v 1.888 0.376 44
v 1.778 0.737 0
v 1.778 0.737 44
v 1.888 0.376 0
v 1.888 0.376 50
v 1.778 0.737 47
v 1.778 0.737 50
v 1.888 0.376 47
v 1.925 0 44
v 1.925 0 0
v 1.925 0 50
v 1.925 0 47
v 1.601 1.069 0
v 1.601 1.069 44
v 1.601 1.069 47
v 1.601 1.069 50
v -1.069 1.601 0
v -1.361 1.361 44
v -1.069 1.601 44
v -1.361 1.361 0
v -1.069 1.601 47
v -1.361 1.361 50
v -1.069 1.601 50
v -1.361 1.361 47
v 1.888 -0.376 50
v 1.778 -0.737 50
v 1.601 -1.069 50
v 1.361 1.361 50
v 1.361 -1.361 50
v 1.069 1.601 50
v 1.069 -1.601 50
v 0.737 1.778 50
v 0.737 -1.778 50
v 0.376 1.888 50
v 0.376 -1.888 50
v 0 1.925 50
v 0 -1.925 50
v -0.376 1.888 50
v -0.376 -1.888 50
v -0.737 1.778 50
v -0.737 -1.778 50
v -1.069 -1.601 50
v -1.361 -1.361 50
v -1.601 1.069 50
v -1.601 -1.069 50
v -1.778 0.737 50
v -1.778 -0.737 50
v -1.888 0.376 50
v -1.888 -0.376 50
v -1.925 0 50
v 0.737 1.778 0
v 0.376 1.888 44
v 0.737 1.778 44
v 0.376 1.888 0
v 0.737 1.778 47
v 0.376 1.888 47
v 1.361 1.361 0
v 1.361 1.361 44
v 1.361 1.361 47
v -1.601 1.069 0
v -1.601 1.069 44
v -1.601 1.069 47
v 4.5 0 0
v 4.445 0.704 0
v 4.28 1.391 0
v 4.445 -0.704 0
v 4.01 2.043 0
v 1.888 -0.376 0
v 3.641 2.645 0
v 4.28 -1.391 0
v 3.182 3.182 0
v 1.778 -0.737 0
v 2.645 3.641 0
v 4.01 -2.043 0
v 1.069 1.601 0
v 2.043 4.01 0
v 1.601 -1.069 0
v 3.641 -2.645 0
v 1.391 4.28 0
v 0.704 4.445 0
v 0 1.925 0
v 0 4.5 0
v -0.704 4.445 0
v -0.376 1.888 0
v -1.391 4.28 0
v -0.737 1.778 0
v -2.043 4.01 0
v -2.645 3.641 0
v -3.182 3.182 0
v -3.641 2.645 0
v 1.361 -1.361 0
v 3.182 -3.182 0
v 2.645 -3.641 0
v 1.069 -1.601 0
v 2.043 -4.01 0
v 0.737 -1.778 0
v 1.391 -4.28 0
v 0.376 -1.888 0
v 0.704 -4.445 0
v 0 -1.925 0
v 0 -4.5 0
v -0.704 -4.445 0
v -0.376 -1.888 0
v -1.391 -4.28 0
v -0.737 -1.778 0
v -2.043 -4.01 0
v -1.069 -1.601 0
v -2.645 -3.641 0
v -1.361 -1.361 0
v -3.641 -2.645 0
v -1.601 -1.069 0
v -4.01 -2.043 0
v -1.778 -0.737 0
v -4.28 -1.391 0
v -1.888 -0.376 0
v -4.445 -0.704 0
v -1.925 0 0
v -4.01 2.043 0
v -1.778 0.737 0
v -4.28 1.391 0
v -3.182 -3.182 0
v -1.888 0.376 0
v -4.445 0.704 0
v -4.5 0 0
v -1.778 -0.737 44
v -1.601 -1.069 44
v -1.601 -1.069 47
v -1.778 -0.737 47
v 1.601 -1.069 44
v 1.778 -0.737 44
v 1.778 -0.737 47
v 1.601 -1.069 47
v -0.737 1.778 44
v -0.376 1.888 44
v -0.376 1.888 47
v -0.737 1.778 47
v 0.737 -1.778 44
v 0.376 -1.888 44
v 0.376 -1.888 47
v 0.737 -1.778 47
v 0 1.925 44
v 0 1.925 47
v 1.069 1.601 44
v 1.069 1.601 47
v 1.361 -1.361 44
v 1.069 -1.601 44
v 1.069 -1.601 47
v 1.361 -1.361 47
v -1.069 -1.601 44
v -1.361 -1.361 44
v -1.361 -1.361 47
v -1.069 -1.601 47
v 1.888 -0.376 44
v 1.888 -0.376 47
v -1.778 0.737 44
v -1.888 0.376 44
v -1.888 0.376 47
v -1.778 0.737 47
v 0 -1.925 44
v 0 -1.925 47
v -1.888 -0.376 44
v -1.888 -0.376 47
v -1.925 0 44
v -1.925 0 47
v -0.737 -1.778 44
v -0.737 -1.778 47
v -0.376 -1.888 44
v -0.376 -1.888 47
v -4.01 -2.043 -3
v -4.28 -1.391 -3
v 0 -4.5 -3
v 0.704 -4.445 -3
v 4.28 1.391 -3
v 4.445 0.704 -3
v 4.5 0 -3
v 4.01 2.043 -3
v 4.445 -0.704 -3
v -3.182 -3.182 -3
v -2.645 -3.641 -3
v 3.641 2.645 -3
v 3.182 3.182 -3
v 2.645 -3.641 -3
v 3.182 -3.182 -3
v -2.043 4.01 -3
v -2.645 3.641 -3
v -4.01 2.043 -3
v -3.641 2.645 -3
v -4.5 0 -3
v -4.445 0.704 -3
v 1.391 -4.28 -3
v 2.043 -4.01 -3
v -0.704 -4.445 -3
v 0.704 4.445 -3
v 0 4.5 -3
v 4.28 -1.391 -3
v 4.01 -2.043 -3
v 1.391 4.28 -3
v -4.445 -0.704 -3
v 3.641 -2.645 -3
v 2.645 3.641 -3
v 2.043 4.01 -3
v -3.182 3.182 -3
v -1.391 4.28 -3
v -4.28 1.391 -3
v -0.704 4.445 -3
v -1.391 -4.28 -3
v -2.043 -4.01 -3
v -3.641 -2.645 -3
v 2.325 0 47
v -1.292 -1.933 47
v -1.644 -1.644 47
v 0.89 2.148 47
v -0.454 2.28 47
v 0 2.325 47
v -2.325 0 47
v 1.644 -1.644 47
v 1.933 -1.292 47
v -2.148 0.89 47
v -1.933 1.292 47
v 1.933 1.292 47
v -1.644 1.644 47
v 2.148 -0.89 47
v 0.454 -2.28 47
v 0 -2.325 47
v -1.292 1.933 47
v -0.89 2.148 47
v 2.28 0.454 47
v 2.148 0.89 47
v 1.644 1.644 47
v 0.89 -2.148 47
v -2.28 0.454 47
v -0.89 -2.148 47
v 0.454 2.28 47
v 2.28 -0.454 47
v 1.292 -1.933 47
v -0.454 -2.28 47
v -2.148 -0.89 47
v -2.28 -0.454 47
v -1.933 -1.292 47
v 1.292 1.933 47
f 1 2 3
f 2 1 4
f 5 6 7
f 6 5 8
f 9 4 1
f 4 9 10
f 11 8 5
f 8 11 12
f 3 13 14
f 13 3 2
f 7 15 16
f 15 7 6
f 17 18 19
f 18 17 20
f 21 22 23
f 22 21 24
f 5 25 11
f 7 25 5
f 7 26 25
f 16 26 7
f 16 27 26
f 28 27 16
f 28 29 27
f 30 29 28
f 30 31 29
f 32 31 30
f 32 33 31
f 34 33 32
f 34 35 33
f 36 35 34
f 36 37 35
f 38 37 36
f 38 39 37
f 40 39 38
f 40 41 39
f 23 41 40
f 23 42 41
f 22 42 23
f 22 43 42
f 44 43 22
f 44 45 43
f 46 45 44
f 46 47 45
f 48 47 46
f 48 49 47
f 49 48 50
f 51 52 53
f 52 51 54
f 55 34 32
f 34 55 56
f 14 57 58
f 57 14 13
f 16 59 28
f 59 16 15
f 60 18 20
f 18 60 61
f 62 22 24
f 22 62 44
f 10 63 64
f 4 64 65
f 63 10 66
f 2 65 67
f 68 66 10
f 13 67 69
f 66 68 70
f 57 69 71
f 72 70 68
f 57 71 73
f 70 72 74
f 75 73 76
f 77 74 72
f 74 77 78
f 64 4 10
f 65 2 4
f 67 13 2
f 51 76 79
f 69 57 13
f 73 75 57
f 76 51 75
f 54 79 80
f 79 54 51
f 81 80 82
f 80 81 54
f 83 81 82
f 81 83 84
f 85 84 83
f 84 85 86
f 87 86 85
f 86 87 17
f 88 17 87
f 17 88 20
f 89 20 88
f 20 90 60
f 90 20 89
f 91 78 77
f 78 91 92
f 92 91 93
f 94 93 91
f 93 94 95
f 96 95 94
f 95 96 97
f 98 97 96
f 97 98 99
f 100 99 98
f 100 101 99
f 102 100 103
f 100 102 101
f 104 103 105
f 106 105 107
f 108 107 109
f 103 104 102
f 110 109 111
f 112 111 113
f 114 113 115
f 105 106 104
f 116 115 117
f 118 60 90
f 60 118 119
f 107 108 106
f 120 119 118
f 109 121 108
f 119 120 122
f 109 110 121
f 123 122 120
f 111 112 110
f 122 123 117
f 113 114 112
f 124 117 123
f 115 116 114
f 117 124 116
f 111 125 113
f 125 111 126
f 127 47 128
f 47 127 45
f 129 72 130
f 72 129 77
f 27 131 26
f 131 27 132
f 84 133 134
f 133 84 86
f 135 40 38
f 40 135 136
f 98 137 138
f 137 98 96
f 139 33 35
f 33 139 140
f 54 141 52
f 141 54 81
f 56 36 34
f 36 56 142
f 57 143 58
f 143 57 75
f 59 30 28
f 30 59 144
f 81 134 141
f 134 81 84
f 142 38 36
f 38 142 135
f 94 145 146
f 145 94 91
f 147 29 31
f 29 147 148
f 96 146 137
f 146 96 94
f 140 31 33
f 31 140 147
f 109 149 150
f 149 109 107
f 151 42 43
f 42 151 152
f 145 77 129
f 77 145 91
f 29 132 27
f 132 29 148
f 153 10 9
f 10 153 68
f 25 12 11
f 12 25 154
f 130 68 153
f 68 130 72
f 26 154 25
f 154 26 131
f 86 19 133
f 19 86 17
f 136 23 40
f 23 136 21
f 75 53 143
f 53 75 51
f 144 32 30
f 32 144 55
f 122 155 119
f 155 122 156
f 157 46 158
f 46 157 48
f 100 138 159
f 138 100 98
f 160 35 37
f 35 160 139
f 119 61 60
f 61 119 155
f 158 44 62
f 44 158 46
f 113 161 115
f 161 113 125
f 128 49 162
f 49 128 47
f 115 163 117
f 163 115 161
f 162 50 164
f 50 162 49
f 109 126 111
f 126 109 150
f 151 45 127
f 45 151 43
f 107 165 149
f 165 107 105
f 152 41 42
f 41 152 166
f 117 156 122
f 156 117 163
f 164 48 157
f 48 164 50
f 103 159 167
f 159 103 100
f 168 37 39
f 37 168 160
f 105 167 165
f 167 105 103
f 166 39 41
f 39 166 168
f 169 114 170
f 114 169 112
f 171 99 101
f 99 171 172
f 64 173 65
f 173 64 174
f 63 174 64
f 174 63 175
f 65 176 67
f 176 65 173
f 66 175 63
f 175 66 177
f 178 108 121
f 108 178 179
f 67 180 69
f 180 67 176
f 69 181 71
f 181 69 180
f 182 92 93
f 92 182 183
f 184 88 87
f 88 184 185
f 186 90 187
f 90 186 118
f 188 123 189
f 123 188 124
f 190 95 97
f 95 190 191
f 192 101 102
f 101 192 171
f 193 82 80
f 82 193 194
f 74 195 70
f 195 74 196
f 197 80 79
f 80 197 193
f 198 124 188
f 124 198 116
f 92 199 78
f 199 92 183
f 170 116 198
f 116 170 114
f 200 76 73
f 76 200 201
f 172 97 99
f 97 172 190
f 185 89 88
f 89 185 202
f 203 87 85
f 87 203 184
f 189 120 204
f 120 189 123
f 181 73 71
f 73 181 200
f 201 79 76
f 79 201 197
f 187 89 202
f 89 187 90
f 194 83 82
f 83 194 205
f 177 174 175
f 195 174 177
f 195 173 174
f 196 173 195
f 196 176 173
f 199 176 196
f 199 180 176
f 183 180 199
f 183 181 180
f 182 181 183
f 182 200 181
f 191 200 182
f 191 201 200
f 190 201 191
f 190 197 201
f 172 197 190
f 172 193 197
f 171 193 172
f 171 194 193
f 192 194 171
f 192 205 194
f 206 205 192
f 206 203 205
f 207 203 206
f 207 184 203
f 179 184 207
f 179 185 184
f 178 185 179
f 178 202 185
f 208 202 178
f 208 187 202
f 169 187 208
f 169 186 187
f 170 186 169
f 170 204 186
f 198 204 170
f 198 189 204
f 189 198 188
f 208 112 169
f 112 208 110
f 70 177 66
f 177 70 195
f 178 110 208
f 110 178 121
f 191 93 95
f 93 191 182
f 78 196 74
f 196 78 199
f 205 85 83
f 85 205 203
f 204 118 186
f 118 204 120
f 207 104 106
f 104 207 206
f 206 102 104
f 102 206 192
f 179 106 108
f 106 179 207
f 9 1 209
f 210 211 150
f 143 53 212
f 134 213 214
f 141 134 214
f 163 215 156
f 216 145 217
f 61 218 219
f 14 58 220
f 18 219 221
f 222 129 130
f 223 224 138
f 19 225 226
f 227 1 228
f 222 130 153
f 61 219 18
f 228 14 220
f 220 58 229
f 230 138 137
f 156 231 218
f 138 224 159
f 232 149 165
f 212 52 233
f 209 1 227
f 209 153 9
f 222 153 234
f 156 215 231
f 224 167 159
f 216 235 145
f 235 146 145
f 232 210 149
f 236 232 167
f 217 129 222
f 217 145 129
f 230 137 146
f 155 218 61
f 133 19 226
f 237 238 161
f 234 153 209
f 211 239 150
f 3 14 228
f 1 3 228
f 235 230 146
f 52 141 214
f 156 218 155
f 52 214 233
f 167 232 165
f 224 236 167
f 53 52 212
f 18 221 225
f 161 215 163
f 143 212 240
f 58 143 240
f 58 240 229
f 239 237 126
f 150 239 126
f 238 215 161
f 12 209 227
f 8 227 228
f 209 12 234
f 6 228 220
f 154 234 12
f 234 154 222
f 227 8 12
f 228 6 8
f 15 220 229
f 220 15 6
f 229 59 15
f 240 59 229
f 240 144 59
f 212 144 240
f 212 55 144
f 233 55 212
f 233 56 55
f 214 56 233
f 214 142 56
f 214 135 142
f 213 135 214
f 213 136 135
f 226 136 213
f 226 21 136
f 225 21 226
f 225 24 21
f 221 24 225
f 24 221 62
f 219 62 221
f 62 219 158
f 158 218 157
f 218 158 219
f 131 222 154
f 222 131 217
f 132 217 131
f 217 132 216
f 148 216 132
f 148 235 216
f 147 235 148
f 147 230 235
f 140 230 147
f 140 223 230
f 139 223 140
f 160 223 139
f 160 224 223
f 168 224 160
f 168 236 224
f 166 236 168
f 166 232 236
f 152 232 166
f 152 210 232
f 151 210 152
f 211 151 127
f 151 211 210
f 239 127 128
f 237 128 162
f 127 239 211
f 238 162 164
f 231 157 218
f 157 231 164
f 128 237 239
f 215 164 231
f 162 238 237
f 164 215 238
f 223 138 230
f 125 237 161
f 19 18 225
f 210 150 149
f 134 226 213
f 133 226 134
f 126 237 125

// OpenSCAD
// Retaining pin for the ribbon-loop hole. Print lying down. Use a dowel/bolt instead if you prefer.
pin_d=4.2-0.35; len=50; head_d=9; head_h=3;
cylinder(d=pin_d,h=len,$fn=32);
translate([0,0,-head_h]) cylinder(d=head_d,h=head_h,$fn=40);
// small barb near the tip: pushes through, resists backing out
translate([0,0,len-6]) cylinder(d1=pin_d,d2=pin_d+0.8,h=3,$fn=32);
